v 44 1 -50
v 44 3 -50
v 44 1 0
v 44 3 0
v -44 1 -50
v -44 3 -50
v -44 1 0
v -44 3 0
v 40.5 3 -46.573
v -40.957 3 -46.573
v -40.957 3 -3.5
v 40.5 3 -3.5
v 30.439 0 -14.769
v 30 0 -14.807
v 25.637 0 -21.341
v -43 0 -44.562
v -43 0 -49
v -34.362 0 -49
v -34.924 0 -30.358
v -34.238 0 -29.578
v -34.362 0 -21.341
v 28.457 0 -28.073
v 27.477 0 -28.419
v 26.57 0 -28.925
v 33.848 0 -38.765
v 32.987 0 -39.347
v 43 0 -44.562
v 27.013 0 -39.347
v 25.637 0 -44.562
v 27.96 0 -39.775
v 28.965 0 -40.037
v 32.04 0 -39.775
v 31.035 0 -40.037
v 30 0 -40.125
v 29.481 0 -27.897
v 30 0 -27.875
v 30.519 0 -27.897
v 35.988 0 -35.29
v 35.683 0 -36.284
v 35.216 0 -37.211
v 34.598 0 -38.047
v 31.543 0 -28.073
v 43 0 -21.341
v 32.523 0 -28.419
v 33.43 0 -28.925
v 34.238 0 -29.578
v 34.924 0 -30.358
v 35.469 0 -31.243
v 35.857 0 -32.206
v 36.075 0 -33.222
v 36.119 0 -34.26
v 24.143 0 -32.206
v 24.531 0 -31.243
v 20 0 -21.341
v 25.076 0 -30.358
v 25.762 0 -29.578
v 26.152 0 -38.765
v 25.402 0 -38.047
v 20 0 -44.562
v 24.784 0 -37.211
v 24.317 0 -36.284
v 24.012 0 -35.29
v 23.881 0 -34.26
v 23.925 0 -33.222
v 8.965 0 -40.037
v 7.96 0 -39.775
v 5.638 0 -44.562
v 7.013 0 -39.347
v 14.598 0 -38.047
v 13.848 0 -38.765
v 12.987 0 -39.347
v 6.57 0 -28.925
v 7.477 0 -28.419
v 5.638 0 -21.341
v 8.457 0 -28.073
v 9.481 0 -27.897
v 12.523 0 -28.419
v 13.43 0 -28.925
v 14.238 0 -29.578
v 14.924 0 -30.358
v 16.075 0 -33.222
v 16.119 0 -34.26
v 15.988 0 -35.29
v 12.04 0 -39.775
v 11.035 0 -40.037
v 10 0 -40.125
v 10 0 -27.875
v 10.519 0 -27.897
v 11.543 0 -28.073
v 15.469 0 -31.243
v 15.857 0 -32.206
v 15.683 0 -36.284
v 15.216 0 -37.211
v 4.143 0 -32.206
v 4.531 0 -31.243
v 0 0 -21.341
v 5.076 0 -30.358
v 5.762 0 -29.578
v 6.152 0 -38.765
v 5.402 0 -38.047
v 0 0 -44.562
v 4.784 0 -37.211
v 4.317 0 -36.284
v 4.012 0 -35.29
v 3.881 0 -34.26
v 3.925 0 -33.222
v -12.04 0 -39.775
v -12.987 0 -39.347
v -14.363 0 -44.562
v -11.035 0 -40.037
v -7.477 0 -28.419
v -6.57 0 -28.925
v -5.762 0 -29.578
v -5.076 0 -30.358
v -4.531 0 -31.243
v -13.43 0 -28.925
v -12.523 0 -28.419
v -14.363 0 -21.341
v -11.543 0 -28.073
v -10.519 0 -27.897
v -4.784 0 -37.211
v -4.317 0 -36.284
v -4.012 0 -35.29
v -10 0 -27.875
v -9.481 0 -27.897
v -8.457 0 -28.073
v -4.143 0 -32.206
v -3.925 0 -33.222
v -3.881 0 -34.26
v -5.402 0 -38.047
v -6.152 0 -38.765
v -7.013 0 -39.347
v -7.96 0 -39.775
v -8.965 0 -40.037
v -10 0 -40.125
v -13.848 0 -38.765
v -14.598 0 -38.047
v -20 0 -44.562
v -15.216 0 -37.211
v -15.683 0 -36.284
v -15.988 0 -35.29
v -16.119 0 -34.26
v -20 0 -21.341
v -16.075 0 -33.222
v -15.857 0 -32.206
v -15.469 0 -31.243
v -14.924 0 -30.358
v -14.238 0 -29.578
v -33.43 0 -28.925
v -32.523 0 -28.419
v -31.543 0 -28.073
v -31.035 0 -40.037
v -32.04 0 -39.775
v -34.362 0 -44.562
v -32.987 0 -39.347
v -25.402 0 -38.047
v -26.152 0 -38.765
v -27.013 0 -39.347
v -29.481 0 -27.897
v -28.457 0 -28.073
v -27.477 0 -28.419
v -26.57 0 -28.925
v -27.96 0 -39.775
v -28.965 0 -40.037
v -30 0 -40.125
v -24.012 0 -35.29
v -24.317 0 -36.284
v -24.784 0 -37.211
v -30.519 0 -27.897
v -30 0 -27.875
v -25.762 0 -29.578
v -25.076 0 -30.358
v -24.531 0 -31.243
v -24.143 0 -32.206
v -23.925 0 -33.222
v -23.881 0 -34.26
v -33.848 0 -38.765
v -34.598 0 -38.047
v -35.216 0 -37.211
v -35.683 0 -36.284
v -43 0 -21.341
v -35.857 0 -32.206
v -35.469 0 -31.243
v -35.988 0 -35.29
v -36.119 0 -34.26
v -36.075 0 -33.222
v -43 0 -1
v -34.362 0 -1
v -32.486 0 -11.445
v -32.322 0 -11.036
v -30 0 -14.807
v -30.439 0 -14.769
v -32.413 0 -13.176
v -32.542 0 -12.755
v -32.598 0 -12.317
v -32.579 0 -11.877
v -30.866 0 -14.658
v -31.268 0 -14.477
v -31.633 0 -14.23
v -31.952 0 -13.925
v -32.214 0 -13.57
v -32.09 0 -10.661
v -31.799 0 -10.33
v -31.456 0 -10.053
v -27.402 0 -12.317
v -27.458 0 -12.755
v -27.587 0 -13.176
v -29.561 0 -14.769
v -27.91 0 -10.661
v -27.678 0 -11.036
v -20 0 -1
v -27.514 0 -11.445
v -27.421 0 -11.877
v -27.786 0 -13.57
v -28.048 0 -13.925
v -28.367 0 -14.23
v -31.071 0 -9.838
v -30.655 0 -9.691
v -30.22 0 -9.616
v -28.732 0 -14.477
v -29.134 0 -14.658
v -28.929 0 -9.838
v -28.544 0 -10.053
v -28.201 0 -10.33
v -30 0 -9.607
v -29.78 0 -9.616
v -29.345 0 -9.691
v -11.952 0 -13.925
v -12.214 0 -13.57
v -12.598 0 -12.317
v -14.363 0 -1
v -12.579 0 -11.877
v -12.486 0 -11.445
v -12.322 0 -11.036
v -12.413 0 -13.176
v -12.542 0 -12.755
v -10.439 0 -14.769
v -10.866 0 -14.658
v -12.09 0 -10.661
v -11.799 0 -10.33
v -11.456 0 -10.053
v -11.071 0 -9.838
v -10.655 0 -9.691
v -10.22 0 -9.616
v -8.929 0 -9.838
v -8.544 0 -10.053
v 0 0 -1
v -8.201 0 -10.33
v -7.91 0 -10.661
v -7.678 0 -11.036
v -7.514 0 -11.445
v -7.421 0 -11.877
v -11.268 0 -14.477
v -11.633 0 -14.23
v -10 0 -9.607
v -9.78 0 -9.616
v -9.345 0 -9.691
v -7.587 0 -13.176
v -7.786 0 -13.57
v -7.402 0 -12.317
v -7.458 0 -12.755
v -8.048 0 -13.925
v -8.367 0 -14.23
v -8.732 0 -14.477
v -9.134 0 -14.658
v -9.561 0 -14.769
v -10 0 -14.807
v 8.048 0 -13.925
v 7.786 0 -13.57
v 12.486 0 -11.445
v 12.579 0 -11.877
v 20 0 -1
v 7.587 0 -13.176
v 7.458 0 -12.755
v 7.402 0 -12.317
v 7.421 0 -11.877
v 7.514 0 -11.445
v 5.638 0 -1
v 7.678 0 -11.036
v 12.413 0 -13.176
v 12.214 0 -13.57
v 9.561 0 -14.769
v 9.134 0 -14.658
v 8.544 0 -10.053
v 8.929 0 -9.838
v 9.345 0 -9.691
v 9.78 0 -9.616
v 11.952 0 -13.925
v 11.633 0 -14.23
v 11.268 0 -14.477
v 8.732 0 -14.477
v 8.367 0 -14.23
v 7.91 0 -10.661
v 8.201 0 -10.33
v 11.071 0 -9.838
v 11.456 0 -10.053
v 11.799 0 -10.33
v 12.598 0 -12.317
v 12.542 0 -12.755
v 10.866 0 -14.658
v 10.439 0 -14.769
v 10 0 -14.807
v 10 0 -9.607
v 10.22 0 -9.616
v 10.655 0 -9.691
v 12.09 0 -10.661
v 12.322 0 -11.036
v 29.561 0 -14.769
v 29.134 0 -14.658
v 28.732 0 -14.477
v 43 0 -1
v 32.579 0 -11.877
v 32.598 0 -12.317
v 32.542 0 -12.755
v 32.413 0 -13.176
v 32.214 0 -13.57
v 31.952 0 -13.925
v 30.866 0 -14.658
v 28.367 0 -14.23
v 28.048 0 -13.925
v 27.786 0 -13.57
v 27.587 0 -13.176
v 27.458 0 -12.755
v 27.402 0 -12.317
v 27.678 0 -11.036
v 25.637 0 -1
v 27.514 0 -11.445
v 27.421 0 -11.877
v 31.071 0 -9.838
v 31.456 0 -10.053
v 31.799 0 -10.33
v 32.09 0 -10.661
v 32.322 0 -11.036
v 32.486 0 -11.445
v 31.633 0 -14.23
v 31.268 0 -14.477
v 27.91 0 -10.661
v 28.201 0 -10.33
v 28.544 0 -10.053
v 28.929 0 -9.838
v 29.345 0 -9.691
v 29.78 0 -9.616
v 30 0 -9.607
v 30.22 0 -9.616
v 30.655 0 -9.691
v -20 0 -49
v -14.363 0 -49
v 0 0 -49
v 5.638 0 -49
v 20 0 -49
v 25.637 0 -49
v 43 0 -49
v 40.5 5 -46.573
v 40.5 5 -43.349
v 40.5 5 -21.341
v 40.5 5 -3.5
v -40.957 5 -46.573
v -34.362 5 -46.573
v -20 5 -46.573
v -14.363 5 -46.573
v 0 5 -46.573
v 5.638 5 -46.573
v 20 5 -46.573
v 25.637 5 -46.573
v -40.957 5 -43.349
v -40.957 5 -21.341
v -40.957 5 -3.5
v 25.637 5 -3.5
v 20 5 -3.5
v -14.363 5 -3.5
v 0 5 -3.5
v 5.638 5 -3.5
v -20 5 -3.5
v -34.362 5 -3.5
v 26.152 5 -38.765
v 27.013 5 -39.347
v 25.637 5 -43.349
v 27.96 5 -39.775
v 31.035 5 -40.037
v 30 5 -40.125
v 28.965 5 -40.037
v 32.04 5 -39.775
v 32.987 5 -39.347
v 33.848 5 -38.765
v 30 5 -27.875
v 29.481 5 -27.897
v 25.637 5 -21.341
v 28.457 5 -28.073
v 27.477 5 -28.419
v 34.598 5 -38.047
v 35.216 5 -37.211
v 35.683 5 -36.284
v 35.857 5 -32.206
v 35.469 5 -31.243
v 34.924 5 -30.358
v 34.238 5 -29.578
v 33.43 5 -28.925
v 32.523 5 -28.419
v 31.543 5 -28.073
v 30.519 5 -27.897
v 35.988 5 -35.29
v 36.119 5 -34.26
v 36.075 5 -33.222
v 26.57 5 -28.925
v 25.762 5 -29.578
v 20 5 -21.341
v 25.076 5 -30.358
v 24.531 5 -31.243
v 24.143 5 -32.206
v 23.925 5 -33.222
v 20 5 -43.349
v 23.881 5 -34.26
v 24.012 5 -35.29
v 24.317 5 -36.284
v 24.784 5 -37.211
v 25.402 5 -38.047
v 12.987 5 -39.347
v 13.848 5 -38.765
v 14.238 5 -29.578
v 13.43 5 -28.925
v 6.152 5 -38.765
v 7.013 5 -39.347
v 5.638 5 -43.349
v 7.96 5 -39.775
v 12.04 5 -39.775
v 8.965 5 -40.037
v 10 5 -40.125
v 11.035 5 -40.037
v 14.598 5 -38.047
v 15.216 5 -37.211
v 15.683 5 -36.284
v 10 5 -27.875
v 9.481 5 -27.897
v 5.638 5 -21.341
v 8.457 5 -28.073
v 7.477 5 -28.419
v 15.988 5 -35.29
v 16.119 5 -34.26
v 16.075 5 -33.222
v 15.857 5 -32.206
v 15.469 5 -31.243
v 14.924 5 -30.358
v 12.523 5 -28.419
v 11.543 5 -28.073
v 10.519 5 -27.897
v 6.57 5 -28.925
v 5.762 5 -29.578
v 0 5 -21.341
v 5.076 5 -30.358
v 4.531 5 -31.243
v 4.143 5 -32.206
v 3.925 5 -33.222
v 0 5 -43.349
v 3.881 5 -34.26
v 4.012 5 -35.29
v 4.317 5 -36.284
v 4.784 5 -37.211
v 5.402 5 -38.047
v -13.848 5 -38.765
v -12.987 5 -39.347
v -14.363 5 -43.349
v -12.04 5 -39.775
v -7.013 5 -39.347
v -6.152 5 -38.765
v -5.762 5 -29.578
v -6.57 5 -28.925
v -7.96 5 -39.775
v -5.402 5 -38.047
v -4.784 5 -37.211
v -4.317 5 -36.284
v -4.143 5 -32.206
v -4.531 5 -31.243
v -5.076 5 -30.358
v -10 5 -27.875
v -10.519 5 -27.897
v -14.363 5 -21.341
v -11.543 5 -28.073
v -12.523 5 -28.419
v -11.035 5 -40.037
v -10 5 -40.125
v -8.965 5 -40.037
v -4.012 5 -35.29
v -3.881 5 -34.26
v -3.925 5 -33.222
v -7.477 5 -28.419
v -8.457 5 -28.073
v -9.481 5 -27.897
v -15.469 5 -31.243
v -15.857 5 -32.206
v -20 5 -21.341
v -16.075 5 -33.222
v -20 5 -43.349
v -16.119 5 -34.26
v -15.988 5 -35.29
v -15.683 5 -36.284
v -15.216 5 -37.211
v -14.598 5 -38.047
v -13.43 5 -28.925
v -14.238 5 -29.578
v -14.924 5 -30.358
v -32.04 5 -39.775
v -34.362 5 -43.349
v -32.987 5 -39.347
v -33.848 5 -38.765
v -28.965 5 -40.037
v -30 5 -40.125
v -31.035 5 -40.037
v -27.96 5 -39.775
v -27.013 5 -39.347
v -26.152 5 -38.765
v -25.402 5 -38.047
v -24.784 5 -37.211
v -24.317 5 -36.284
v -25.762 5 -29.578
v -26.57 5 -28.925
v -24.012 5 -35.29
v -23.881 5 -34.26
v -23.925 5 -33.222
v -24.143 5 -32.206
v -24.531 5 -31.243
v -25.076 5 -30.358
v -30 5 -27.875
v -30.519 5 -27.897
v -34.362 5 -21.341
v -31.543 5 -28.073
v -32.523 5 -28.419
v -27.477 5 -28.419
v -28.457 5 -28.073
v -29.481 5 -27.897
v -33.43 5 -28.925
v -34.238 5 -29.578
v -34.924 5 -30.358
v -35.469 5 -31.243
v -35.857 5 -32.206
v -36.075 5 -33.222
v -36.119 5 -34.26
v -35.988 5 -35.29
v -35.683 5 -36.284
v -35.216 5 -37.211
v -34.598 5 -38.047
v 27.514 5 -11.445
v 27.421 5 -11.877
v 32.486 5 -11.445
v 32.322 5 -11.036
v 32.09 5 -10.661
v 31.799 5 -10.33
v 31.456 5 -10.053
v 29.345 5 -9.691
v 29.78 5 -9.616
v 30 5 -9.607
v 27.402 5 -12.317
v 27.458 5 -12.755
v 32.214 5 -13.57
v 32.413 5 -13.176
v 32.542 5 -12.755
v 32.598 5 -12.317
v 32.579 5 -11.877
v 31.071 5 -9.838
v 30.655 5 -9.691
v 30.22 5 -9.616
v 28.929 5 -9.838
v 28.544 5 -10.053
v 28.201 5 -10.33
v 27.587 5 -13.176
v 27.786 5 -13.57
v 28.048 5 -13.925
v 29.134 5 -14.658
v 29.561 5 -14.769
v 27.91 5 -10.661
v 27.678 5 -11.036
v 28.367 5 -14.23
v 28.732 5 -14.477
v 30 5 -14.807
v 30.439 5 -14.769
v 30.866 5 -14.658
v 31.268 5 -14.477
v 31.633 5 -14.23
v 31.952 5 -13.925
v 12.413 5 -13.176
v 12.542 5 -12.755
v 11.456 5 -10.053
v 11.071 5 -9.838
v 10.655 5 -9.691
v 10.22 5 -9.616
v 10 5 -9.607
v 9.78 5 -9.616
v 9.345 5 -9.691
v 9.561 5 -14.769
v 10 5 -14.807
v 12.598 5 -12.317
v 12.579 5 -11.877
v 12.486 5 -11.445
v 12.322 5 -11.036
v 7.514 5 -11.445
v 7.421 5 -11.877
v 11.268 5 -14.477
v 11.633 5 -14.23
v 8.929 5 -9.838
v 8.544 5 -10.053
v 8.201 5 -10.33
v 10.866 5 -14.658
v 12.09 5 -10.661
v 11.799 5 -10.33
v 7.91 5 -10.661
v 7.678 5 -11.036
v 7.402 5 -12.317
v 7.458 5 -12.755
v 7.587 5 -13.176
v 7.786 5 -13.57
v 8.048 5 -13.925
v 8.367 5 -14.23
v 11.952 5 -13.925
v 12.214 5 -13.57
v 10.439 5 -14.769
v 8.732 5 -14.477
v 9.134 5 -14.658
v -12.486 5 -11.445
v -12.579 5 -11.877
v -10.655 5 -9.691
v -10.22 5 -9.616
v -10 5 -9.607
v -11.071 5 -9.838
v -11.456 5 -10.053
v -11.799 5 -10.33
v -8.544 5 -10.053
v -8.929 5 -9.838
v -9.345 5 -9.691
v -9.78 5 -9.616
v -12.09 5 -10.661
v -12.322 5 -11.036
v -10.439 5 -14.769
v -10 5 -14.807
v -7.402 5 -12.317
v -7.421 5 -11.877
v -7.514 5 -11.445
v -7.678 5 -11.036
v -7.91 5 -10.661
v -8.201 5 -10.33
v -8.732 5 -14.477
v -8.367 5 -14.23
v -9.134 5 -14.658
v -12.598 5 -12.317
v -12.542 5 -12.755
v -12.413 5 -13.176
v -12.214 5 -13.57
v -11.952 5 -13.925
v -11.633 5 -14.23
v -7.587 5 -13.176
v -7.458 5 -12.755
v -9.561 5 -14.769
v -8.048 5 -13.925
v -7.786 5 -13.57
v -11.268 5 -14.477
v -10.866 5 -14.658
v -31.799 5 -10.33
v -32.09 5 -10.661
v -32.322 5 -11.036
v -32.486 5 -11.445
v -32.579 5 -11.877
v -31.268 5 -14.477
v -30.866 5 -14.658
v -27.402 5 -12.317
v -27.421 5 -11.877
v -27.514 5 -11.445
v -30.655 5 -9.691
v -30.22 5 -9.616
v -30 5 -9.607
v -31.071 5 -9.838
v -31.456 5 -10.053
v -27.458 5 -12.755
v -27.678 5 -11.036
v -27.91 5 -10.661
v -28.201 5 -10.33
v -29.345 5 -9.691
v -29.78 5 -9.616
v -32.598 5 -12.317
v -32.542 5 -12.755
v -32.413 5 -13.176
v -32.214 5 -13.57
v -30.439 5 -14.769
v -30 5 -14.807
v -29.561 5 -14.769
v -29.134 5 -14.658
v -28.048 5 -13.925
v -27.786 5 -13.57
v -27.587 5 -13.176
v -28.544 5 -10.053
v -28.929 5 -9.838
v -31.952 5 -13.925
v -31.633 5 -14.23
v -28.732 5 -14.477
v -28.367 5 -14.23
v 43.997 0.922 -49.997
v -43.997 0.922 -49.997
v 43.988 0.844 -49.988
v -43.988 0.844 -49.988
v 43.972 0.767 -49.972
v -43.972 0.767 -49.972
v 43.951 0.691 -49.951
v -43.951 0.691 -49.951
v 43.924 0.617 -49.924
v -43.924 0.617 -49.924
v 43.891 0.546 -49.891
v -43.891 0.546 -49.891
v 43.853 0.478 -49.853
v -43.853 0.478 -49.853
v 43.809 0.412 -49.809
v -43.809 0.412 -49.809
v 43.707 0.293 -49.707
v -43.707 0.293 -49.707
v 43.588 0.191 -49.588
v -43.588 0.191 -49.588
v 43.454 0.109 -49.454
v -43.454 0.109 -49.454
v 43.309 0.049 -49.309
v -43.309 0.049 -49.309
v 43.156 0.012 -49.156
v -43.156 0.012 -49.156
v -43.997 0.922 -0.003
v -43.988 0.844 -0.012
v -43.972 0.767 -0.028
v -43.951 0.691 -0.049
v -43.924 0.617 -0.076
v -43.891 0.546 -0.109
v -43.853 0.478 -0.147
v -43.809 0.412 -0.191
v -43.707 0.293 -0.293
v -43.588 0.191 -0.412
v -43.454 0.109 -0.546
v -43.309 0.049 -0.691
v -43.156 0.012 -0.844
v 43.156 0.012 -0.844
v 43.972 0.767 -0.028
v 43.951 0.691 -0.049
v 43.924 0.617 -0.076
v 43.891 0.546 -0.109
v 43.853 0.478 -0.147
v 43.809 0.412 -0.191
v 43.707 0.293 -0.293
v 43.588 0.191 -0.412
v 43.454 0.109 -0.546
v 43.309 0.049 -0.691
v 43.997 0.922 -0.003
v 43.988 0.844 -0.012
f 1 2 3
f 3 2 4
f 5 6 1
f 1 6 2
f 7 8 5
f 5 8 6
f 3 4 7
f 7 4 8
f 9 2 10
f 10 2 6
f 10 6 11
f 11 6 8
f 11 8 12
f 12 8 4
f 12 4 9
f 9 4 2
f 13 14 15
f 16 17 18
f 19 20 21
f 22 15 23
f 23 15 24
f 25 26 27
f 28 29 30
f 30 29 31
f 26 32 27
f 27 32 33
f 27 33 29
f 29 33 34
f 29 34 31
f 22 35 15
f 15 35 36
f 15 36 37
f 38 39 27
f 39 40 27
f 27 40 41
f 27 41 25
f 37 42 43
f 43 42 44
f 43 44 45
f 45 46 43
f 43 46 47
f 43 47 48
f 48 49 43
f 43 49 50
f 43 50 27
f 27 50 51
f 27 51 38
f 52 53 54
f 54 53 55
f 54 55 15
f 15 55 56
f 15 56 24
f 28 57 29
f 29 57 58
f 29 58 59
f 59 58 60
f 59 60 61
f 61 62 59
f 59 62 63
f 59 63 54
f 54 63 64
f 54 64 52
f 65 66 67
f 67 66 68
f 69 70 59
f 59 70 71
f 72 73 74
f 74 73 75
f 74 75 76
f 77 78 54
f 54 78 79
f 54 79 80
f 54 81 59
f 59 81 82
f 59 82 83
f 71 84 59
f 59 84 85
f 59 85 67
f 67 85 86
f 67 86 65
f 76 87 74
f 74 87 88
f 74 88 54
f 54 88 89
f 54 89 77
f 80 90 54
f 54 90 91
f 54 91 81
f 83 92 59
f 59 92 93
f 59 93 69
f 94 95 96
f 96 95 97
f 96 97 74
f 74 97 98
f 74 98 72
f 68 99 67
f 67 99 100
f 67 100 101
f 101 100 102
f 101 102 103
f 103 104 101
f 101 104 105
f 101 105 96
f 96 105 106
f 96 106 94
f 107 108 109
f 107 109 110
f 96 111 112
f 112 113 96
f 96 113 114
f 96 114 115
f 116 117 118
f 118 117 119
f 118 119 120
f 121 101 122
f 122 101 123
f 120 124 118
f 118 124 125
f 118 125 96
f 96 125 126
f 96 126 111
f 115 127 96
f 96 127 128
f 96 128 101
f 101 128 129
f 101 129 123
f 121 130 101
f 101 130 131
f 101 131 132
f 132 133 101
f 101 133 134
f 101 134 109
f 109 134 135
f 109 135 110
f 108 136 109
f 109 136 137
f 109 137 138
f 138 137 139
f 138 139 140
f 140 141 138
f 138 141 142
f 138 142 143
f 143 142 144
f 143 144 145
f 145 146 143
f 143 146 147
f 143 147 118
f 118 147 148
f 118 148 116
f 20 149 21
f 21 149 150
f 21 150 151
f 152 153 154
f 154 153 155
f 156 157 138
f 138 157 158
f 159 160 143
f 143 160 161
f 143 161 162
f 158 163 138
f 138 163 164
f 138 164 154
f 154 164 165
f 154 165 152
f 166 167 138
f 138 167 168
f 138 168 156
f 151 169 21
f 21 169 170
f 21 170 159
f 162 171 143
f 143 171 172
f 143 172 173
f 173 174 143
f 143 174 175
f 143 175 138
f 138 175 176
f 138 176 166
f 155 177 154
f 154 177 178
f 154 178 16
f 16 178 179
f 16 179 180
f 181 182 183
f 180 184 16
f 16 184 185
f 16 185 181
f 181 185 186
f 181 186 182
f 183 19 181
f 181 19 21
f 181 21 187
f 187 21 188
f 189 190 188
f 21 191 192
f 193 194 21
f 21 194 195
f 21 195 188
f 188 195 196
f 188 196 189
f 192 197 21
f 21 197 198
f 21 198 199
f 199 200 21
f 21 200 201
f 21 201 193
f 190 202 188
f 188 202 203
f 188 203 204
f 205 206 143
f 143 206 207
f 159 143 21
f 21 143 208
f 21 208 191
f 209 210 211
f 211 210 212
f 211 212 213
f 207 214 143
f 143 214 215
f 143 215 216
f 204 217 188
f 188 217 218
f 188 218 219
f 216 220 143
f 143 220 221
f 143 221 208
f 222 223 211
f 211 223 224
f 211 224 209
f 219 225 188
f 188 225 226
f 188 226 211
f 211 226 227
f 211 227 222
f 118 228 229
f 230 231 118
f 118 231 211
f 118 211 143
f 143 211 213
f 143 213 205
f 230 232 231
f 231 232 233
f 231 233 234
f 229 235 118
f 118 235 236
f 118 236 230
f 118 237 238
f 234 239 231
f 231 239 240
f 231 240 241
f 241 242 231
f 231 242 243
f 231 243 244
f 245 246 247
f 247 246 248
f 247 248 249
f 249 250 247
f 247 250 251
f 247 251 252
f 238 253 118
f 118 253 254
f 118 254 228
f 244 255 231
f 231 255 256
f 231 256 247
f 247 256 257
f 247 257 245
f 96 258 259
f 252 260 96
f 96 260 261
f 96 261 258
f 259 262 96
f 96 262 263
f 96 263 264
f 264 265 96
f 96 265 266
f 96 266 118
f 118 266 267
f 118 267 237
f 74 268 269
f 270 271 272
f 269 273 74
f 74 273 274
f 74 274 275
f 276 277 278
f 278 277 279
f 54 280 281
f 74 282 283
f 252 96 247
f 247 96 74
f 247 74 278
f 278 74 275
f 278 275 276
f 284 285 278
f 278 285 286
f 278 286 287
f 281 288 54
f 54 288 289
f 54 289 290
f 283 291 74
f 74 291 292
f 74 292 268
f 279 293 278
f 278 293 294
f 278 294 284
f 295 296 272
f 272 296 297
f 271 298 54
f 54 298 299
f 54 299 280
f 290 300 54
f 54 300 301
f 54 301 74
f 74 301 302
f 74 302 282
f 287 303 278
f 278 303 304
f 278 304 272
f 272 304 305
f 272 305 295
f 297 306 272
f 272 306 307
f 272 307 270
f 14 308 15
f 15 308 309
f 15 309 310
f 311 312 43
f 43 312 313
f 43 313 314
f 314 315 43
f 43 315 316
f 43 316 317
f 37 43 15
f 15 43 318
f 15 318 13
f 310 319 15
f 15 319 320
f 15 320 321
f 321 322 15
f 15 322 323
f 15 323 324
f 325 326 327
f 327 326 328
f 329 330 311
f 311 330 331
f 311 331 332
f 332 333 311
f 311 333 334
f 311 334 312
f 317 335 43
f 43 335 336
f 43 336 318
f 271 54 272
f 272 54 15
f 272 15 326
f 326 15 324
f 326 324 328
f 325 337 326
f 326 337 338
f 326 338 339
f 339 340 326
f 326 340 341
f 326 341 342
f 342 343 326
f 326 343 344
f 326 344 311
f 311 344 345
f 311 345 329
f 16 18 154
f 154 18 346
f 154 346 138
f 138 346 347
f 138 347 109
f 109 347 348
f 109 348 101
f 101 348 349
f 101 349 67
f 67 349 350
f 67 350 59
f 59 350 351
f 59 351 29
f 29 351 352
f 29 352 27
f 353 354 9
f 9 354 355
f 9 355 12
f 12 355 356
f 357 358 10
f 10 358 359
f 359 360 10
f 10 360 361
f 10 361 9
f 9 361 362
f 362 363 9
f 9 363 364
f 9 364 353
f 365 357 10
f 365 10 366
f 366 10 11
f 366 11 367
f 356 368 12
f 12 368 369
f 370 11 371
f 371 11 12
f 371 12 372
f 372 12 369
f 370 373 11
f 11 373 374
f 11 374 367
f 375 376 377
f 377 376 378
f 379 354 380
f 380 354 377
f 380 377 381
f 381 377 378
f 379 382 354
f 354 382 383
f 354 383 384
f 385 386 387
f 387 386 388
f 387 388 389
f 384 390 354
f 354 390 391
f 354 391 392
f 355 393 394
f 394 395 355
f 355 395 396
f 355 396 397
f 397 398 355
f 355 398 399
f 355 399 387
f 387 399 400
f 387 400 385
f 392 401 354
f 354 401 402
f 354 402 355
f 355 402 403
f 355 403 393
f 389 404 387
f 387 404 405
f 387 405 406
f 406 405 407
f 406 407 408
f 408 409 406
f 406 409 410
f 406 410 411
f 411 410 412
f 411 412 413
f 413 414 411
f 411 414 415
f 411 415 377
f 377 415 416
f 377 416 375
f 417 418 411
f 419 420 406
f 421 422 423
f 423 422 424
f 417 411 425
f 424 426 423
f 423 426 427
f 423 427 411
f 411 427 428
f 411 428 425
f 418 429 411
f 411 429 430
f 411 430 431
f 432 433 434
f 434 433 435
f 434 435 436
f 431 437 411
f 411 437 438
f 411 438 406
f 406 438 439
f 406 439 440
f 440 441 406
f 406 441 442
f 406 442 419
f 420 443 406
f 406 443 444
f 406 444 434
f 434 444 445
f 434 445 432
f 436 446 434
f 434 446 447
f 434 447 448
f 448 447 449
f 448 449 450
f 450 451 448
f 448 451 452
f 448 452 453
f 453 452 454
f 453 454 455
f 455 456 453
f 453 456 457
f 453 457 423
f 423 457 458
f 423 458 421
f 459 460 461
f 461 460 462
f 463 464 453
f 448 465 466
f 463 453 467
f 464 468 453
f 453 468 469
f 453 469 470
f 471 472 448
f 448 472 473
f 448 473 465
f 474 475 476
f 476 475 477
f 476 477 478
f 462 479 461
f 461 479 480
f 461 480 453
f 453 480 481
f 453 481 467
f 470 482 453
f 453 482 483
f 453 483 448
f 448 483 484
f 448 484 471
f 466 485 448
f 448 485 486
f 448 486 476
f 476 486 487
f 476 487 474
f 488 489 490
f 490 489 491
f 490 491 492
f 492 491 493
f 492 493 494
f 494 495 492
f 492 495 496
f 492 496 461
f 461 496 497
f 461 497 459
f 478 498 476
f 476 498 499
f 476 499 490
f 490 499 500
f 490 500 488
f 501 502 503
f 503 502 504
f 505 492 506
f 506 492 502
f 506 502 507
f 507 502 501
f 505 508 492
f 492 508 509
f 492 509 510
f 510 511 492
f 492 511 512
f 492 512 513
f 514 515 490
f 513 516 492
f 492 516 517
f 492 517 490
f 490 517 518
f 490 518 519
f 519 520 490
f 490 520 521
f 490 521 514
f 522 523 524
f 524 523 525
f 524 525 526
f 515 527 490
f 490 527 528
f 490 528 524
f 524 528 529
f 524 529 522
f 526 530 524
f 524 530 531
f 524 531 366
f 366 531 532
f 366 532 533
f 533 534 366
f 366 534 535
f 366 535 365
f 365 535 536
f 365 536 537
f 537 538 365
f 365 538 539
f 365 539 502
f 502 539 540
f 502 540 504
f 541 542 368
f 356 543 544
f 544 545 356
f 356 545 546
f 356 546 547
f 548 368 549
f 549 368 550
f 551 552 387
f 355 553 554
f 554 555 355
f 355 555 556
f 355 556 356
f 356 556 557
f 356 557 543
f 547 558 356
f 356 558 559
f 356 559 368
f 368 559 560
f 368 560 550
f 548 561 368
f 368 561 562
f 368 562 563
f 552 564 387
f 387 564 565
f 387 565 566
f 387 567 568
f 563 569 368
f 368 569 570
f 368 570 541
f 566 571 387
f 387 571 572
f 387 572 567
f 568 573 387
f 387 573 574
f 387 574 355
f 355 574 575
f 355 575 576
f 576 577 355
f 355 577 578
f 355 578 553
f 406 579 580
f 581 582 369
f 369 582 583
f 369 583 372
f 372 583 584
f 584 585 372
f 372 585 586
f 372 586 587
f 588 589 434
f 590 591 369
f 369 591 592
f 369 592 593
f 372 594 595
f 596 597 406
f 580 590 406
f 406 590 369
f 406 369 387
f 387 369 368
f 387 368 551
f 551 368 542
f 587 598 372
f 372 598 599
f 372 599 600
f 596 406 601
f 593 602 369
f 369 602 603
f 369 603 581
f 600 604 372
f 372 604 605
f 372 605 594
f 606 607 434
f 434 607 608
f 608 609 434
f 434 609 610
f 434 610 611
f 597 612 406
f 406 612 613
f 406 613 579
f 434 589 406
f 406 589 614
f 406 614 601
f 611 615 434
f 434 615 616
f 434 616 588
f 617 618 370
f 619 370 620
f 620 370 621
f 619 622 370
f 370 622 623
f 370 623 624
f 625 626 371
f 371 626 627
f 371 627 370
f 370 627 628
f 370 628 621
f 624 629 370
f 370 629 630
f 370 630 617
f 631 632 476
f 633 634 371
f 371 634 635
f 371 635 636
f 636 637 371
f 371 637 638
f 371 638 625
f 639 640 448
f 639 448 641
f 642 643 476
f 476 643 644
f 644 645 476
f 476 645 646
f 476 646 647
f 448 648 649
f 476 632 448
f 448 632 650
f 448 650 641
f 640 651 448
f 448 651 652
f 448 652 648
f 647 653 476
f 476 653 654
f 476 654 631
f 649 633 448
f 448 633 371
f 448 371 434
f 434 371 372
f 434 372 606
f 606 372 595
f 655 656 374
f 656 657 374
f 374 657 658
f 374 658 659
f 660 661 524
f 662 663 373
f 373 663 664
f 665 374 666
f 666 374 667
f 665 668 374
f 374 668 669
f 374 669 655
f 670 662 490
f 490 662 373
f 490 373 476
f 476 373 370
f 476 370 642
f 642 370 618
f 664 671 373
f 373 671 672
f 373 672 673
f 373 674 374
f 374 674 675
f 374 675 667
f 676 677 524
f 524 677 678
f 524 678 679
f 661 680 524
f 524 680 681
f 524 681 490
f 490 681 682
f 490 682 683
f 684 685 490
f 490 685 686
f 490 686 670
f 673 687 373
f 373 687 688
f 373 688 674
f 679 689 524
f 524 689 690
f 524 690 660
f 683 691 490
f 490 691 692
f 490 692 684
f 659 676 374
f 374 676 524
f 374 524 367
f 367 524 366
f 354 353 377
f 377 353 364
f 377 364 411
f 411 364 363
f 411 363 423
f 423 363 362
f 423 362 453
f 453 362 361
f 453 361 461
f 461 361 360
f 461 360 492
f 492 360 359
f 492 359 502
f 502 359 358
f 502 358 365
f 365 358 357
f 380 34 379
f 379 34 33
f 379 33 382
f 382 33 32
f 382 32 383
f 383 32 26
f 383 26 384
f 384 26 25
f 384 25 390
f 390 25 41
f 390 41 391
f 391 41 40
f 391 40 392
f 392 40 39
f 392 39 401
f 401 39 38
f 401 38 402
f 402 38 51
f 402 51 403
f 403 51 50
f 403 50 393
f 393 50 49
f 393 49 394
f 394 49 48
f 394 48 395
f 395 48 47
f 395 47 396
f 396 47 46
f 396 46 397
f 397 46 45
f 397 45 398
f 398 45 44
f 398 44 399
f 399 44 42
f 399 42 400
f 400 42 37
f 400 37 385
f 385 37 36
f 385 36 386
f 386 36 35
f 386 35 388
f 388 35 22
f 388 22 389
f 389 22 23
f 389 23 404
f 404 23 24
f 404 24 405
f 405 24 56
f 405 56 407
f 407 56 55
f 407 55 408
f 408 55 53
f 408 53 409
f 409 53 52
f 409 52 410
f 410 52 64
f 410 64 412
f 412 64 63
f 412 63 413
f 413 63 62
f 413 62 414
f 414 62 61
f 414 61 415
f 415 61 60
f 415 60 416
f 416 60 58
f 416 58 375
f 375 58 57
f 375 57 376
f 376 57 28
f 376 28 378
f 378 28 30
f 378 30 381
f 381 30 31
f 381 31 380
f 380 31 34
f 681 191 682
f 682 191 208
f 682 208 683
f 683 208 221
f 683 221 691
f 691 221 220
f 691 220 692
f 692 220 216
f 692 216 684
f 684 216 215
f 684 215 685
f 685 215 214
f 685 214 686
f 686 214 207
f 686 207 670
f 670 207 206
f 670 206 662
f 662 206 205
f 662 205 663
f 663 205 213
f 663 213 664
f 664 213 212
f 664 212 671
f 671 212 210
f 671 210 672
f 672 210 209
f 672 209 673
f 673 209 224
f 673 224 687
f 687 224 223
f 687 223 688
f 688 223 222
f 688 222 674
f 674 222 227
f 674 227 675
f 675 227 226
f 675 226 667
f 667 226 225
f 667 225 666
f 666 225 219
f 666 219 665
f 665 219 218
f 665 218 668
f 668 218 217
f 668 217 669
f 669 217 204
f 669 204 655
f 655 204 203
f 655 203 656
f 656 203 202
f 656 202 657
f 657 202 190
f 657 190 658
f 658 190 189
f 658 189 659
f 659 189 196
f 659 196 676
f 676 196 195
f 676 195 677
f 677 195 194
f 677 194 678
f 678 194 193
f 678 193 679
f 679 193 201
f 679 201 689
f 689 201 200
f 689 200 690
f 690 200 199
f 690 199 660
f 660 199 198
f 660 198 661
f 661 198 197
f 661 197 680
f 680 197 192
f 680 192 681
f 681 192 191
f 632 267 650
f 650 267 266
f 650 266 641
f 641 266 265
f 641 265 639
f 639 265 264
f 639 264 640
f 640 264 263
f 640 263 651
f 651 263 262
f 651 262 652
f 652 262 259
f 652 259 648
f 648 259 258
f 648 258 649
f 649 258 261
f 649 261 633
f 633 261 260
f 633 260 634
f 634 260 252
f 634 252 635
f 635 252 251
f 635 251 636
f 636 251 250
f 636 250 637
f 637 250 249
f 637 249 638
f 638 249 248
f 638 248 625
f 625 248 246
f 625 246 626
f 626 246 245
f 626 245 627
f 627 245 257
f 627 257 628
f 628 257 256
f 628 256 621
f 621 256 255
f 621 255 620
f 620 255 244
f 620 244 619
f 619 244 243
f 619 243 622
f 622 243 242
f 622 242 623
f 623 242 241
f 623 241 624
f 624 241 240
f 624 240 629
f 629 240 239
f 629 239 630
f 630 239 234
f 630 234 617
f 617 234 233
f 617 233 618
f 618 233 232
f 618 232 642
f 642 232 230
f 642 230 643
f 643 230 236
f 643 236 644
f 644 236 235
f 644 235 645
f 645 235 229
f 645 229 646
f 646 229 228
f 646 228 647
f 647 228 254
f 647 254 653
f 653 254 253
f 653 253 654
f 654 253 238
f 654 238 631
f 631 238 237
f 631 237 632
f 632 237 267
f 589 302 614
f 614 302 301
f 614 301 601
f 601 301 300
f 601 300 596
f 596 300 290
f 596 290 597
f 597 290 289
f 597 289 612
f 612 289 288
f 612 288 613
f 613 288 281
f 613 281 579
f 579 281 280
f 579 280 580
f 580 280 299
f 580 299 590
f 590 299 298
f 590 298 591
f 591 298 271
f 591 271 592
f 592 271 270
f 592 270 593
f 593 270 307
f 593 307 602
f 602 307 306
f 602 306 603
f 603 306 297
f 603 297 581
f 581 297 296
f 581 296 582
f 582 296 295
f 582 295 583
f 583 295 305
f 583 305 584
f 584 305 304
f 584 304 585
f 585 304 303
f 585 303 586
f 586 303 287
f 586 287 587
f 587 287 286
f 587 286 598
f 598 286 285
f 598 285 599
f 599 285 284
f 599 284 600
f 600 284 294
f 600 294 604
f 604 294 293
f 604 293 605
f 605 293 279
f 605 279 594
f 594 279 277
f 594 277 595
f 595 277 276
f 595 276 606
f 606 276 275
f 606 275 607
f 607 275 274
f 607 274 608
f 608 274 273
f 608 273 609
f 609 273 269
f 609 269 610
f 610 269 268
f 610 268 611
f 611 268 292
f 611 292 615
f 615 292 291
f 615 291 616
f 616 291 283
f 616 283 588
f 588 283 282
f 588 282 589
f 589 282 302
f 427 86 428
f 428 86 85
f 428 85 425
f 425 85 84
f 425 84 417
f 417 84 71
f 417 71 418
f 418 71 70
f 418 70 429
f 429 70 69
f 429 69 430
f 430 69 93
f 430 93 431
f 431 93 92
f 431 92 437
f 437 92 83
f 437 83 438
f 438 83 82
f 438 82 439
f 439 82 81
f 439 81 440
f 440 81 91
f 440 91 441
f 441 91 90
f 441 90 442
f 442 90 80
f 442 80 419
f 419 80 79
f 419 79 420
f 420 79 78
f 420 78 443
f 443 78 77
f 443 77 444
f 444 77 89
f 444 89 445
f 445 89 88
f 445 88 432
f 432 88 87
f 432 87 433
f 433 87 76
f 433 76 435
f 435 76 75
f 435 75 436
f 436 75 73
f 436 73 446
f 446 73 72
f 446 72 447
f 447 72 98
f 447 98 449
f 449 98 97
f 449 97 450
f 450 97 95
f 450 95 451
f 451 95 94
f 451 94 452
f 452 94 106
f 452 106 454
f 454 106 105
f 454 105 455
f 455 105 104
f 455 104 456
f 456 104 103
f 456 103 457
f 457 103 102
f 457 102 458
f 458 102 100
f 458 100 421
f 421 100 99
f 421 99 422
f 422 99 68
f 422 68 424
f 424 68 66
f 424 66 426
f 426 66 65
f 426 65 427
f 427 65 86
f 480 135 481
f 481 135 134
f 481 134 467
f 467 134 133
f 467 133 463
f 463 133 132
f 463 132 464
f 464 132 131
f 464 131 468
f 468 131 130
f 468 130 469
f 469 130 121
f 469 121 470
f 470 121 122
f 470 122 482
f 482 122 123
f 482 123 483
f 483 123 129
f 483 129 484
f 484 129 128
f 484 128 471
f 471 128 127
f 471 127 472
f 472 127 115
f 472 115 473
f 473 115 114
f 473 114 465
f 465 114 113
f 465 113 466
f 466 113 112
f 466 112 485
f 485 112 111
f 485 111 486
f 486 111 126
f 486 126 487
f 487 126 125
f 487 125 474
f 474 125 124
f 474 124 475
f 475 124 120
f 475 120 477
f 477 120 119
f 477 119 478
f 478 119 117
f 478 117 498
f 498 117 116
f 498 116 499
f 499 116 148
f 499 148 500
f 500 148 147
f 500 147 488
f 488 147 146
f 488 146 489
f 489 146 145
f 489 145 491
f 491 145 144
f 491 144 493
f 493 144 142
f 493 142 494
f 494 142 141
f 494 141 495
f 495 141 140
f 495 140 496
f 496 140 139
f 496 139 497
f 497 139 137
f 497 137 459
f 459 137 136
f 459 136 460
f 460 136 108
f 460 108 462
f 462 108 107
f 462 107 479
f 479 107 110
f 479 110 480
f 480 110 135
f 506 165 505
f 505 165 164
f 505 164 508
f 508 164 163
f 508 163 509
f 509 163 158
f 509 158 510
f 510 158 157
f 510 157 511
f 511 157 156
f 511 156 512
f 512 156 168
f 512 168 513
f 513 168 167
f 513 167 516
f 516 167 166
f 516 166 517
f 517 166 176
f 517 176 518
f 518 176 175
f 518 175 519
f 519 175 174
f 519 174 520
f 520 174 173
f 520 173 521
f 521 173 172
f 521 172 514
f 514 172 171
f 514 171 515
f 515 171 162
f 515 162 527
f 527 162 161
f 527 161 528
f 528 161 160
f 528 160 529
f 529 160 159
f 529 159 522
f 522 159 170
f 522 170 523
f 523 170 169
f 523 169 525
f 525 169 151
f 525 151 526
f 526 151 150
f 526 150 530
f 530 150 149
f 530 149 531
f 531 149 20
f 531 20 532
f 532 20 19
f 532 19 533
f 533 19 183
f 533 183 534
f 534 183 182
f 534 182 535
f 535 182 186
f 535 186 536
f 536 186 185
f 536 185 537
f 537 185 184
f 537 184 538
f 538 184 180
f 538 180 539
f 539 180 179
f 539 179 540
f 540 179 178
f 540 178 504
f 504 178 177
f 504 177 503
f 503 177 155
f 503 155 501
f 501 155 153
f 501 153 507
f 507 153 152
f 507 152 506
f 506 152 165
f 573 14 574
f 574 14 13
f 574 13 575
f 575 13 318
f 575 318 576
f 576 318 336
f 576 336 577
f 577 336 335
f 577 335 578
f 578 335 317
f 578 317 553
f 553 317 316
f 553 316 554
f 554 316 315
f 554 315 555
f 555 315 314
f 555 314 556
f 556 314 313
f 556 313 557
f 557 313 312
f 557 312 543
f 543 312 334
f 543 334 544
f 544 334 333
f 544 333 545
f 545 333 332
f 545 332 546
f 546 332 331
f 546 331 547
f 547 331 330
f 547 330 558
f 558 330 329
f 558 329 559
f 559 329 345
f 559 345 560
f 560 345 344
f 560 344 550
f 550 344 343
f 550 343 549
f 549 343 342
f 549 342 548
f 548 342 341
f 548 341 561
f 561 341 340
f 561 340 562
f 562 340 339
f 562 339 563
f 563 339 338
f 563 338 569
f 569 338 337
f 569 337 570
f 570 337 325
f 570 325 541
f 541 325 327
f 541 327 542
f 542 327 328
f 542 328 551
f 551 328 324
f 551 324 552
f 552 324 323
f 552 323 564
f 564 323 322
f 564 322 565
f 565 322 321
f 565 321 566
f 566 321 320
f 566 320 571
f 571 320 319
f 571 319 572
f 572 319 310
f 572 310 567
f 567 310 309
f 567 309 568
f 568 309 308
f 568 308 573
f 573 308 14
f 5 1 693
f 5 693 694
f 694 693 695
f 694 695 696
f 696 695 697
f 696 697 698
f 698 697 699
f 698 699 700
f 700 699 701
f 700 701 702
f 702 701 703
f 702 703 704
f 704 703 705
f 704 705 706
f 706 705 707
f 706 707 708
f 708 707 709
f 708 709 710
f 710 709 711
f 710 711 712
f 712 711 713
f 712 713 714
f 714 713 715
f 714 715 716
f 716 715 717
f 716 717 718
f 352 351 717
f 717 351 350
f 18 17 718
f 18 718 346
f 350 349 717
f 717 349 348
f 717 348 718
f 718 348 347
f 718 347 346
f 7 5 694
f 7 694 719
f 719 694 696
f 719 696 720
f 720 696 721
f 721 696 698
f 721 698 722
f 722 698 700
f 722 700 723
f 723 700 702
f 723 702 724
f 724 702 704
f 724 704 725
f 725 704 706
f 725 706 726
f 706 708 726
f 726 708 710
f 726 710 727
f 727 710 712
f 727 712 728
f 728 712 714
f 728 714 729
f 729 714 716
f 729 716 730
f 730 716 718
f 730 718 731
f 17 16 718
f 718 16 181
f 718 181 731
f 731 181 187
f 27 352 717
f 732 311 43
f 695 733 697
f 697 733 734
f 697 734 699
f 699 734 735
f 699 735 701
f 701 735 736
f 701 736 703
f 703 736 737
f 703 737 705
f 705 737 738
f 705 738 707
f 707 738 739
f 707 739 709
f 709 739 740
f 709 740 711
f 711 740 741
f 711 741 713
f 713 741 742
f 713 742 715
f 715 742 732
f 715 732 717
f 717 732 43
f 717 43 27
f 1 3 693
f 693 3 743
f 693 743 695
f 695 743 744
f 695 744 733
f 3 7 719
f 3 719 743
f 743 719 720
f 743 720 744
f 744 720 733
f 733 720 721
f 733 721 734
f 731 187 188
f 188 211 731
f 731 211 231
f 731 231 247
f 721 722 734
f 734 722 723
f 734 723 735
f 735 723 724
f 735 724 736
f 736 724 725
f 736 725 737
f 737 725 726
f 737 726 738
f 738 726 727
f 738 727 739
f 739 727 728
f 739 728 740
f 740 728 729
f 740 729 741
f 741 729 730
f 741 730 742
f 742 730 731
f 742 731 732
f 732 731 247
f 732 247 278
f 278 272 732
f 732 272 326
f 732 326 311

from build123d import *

# Parameters (mm, degrees)
SKETCH4_W               = 88
SKETCH4_H               = 50
BOSS_EXTRUDE2_DEPTH     = 3
SKETCH6_W               = 81.456613026
SKETCH6_H               = 43.073471677
BOSS_EXTRUDE3_DEPTH     = 2
CUT_EXTRUDE1_DEPTH      = 67.670833203
CUT_EXTRUDE1_DEPTH_BACK = 67.670833203
SKETCH5_R               = 6.125
SKETCH5_R_2             = 2.6
FILLET1_R               = 1


with BuildPart() as part:
    # Sketch4 → Boss-Extrude2 (new body)
    with BuildSketch(Plane(origin=(0, 0, 0), x_dir=(1, 0, 0), z_dir=(0, 1, 0))):
        with Locations((0, 25)):
            Rectangle(SKETCH4_W, SKETCH4_H)
    extrude(amount=BOSS_EXTRUDE2_DEPTH)

    # Sketch6 → Boss-Extrude3 (add)
    with BuildSketch(Plane(origin=(0, 3, 0), x_dir=(1, 0, 0), z_dir=(0, 1, 0))):
        with Locations((-0.228306513, 25.036735839)):
            Rectangle(SKETCH6_W, SKETCH6_H)
    extrude(amount=BOSS_EXTRUDE3_DEPTH)

    # Sketch5 → Cut-Extrude1 (cut, two sides: drawn at the far end of the back side and taken through both)
    with BuildSketch(Plane(origin=(0, 3, 0), x_dir=(-1, 0, 0), z_dir=(0, 1, 0)).offset(-CUT_EXTRUDE1_DEPTH_BACK)):
        with Locations(Location((-30, -34, 0), (0, 0, 90))):
            Circle(SKETCH5_R)
        with Locations(Location((-10, -34, 0), (0, 0, 90))):
            Circle(SKETCH5_R)
        with Locations(Location((10, -34, 0), (0, 0, 90))):
            Circle(SKETCH5_R)
        with Locations(Location((30, -34, 0), (0, 0, 90))):
            Circle(SKETCH5_R)
        with Locations(Location((-30, -12.206810763, 0), (0, 0, 90))):
            Circle(SKETCH5_R_2)
        with Locations(Location((-10, -12.206810763, 0), (0, 0, 90))):
            Circle(SKETCH5_R_2)
        with Locations(Location((10, -12.206810763, 0), (0, 0, 90))):
            Circle(SKETCH5_R_2)
        with Locations(Location((30, -12.206810763, 0), (0, 0, 90))):
            Circle(SKETCH5_R_2)
    extrude(amount=CUT_EXTRUDE1_DEPTH + CUT_EXTRUDE1_DEPTH_BACK, mode=Mode.SUBTRACT)

    # Fillet1
    fillet1_edges = [part.edges().sort_by_distance(p)[0] for p in [
        (0, 0, 0),
        (-44, 0, -25),
        (0, 0, -50),
        (44, 0, -25),
    ]]
    fillet(fillet1_edges, radius=FILLET1_R)


solid = part.part
